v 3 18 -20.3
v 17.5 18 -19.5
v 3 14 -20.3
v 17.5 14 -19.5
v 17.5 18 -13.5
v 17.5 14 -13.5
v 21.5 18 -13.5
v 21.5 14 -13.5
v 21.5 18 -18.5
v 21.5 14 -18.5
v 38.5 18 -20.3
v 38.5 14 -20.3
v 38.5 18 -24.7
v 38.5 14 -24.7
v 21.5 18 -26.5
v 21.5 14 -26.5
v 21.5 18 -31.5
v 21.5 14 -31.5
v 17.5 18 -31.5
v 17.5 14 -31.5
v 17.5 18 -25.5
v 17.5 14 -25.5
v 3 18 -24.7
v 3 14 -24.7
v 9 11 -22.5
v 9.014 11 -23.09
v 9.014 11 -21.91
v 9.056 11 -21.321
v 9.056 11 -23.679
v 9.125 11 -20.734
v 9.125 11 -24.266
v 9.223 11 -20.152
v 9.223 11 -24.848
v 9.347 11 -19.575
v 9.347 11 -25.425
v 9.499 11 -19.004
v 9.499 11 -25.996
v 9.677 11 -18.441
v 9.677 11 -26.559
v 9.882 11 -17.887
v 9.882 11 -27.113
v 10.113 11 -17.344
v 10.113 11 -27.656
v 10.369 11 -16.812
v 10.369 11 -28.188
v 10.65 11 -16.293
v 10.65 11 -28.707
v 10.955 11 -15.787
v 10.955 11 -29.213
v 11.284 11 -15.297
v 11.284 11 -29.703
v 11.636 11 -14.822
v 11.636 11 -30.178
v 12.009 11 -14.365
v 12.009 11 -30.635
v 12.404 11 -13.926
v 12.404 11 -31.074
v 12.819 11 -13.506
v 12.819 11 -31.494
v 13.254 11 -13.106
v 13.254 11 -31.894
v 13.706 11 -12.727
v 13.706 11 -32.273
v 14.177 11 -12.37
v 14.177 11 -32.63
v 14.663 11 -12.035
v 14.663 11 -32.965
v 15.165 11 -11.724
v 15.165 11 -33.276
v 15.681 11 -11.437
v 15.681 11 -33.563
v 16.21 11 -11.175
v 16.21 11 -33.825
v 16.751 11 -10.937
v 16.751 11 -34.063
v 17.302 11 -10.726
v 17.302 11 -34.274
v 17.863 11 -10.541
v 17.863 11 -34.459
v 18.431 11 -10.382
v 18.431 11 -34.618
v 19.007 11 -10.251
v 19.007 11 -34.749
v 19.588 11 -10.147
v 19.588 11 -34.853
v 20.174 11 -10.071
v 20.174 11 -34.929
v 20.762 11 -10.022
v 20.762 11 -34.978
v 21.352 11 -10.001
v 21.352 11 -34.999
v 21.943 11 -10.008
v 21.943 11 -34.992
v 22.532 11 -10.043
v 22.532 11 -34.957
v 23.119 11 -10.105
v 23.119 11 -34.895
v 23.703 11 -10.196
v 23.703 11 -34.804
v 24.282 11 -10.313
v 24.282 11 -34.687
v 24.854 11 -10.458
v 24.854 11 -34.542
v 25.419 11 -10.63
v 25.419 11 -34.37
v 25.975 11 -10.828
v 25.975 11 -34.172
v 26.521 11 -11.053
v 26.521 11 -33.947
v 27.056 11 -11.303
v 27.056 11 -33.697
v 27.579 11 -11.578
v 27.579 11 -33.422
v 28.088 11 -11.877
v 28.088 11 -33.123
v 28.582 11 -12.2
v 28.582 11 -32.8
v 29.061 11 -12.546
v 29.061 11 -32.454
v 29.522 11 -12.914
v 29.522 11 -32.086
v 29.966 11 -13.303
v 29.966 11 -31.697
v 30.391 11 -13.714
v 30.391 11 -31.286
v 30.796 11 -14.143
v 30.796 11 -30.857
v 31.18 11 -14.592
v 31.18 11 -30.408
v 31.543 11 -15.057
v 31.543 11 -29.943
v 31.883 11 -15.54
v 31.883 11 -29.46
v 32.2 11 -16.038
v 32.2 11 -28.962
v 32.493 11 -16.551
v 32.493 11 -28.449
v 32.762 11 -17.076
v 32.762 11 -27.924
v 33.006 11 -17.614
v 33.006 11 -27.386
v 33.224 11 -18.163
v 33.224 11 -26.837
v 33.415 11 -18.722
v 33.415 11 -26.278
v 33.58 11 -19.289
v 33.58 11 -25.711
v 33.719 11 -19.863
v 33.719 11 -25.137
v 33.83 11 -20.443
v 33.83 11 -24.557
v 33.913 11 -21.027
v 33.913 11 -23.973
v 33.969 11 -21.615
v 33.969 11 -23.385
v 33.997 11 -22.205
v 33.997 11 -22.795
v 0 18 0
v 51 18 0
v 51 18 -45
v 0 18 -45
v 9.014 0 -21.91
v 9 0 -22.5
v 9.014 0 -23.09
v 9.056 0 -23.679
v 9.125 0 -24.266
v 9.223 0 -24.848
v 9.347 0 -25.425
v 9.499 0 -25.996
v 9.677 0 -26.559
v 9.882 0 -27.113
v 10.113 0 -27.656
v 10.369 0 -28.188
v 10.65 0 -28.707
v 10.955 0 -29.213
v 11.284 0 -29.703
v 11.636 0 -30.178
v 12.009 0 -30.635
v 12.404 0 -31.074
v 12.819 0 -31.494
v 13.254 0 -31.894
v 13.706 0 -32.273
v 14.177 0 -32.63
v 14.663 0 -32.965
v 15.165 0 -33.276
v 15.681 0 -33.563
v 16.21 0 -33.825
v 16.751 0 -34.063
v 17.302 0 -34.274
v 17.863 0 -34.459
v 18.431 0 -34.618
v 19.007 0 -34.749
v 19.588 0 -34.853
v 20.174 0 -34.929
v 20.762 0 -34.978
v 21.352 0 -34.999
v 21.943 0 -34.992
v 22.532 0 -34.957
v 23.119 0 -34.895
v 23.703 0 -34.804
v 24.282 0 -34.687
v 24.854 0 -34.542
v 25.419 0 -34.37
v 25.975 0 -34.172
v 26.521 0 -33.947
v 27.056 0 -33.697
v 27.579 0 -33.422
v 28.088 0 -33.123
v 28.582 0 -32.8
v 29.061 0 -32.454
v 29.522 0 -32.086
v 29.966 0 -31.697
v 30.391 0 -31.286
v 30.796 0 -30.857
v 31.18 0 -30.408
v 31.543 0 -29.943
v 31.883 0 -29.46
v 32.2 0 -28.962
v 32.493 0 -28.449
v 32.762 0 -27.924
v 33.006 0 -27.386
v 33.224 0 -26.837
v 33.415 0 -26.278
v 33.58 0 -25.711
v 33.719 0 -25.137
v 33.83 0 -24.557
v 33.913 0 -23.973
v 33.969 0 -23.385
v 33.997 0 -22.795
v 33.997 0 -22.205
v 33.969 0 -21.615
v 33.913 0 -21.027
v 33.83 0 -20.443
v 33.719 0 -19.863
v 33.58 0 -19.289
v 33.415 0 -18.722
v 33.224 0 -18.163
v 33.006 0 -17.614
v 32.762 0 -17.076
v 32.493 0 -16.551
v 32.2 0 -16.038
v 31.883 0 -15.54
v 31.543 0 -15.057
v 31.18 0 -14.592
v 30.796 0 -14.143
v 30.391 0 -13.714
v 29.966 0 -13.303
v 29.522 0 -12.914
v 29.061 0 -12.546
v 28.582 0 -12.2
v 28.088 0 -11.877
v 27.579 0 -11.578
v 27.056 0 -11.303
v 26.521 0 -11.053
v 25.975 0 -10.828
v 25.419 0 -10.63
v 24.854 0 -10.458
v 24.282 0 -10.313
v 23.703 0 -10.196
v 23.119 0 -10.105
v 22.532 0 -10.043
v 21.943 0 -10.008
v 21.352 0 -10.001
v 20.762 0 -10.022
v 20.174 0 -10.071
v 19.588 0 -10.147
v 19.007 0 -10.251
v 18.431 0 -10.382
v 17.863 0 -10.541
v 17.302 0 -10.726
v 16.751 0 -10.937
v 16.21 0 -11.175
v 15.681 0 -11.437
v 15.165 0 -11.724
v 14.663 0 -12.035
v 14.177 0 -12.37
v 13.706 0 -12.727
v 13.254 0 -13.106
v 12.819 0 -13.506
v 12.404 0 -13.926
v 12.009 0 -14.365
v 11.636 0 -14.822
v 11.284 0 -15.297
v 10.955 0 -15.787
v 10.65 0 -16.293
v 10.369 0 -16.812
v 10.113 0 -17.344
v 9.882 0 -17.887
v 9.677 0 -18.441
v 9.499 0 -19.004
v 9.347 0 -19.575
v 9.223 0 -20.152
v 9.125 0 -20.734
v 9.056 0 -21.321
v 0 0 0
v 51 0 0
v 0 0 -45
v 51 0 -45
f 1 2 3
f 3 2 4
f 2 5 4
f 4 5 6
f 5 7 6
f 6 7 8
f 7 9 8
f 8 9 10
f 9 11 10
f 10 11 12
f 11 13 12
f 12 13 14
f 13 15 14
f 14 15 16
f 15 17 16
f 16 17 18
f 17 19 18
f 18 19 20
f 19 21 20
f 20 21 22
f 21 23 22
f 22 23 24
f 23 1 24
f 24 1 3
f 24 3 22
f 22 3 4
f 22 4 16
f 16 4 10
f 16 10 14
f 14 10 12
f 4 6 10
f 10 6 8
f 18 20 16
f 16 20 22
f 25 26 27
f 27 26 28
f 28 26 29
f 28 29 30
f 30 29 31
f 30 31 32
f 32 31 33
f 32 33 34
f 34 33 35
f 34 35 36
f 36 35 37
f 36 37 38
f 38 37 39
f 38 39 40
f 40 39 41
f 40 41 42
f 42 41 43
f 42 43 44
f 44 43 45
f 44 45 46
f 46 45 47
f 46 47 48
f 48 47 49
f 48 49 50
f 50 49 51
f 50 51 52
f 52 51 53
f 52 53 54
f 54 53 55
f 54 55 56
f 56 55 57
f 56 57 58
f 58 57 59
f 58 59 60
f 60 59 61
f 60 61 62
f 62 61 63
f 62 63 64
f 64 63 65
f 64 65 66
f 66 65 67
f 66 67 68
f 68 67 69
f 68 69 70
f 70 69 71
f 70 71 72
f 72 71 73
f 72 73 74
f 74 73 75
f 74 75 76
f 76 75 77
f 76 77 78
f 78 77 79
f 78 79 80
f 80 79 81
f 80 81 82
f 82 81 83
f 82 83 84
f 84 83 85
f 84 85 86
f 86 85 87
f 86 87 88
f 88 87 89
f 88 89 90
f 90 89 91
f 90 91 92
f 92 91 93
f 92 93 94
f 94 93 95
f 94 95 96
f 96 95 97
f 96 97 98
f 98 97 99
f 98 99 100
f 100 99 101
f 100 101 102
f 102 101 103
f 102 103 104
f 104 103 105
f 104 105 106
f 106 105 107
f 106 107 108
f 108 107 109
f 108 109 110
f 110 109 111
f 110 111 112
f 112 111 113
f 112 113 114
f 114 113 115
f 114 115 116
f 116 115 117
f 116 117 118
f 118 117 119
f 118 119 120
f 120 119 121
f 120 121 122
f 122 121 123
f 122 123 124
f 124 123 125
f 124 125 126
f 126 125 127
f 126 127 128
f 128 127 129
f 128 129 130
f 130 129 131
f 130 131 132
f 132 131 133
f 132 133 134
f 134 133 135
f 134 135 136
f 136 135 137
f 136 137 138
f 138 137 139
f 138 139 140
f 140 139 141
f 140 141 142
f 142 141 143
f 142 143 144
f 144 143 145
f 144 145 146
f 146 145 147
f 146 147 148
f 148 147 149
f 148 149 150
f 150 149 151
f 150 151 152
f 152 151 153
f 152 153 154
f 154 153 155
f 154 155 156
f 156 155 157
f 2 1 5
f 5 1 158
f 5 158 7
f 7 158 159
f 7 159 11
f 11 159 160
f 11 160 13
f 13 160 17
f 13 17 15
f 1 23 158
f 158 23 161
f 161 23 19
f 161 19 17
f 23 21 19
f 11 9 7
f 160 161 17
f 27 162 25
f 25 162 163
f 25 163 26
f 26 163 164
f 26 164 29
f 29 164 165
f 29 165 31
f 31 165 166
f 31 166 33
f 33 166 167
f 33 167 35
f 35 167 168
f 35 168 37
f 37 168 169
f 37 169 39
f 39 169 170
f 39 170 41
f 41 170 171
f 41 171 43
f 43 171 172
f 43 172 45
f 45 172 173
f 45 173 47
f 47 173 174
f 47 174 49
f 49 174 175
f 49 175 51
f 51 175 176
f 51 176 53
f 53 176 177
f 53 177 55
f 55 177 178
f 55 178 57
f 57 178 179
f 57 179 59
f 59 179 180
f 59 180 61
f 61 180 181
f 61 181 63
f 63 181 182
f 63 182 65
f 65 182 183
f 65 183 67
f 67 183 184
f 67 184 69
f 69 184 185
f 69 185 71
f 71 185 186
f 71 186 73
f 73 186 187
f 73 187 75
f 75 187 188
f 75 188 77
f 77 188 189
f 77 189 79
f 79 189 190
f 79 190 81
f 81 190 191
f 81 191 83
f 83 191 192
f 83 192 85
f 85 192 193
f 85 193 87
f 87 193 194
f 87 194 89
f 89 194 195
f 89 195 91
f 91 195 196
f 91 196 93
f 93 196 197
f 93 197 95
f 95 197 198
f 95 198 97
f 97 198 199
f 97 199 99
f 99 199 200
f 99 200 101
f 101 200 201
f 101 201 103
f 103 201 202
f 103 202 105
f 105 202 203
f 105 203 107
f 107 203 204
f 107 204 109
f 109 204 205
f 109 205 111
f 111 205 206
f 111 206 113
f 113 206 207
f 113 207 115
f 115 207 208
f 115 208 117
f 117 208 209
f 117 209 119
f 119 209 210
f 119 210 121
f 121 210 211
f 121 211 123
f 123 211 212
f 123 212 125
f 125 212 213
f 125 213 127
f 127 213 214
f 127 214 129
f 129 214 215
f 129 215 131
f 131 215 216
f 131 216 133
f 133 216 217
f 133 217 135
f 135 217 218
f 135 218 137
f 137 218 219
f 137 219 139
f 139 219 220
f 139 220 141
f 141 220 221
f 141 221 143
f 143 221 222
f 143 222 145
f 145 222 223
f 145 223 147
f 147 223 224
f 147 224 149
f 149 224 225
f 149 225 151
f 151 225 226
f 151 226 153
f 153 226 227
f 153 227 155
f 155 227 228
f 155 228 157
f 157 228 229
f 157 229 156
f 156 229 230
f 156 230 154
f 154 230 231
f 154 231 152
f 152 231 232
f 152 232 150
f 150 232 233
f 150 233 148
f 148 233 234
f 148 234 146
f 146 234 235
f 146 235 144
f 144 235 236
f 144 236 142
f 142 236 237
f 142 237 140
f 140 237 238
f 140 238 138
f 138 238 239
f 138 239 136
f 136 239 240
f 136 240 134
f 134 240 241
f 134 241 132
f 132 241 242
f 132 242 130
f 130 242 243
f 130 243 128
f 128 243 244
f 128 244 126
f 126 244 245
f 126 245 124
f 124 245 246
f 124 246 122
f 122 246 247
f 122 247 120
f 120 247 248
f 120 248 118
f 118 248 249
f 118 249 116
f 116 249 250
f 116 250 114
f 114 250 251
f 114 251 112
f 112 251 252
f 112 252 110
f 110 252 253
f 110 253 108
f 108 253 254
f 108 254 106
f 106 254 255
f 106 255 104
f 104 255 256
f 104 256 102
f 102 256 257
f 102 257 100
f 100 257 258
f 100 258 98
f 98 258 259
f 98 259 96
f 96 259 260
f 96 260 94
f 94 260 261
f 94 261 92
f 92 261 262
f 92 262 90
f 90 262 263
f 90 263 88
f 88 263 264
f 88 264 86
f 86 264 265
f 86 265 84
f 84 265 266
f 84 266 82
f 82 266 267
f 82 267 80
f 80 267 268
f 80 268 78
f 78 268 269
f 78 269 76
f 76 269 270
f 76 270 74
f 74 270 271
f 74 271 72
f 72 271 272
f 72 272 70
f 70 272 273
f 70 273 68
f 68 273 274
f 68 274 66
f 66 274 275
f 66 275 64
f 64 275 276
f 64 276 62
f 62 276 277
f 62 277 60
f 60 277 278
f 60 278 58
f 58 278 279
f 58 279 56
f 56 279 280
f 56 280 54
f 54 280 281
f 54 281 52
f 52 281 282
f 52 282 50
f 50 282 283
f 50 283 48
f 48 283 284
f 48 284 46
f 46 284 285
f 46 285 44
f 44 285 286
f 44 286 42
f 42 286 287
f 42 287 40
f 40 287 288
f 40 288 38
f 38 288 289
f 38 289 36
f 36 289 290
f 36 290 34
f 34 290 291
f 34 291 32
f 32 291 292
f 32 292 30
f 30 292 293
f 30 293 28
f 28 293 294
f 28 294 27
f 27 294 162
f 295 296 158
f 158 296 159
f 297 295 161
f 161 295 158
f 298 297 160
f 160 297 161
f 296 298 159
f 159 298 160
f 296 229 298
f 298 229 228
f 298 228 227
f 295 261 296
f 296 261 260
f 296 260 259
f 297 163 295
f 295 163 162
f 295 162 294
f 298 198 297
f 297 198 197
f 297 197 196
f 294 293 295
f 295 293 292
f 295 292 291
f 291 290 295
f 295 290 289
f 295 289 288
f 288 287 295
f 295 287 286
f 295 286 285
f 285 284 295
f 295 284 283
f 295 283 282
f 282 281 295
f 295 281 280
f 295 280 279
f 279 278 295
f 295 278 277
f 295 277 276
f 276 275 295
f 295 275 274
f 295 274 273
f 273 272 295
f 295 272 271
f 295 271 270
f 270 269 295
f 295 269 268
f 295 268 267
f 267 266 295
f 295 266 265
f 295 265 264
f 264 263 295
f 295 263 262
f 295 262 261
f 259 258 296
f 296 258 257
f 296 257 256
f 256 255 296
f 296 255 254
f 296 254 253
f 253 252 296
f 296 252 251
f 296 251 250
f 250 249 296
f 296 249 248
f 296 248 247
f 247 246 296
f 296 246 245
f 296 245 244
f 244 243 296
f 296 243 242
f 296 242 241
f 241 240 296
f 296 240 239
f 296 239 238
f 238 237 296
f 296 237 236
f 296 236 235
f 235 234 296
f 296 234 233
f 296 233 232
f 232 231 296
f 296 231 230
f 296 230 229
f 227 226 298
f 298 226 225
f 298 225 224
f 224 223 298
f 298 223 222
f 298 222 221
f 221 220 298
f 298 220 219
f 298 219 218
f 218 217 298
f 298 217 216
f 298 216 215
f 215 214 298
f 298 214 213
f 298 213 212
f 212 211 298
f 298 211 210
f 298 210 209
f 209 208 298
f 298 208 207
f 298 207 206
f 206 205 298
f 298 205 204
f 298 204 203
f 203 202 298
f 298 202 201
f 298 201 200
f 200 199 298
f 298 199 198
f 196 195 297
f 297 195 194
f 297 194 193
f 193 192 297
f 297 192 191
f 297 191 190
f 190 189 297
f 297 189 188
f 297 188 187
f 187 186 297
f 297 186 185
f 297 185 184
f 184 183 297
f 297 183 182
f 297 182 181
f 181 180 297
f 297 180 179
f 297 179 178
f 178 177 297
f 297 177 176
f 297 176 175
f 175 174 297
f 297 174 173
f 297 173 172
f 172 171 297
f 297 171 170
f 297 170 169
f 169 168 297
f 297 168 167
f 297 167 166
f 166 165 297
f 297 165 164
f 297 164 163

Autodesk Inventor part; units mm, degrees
ref_plane "YZ Plane" through (0, 0, 0) normal (1, 0, 0) x (0, 1, 0)
ref_plane "XZ Plane" through (0, 0, 0) normal (0, 1, 0) x (-1, 0, 0)
ref_plane "XY Plane" through (0, 0, 0) normal (0, 0, 1) x (1, 0, 0)
sketch "Sketch1" plane through (0, 0, 0) normal (0, 1, 0) x (-1, 0, 0)
  point P0 (0, 0)
sketch "Sketch2" plane through (0, 0, 0) normal (0, 1, 0) x (-1, 0, 0)
  line L0 (0, 0) -> (-51, 0)
  line L1 (-51, 0) -> (-51, -45)
  line L2 (-51, -45) -> (0, -45)
  line L3 (0, 0) -> (0, -45)
  line L4 (0, -45) -> (0, -22.5)
  circle A0 centre (-21.5, -22.5) radius 12.5
  dimension "d0" = 51
  dimension "d1" = 45
  dimension "d6" = 25
extrude "Extrusion1" add sketch "Sketch2" along normal blind 11
sketch "Sketch3" plane through (0, 11, 0) normal (0, 1, 0) x (1, 0, 0)
  line L0 (0, 45) -> (0, 0) projected
  line L1 (51, 0) -> (51, 45) projected
  line L2 (0, 0) -> (51, 0)
  line L3 (51, 0) -> (51, 45)
  line L4 (51, 45) -> (0, 45)
  line L5 (0, 45) -> (0, 0)
extrude "Extrusion2" add sketch "Sketch3" along normal blind 7
sketch "Sketch4" plane through (0, 18, 0) normal (0, 1, 0) x (1, 0, 0)
  line L0 (0, 45) -> (0, 0) projected
  line L1 (0, 0) -> (51, 0) projected
  line L2 (3, 14) -> (3, 31)
  line L3 (3, 22.5) -> (3, 20.3)
  line L4 (3, 20.3) -> (3, 24.7)
  line L5 (17.5, 19.5) -> (3, 20.3)
  line L6 (3, 24.7) -> (17.5, 25.5)
  line L7 (17.5, 25.5) -> (17.5, 31.5)
  line L8 (17.5, 31.5) -> (21.5, 31.5)
  line L9 (21.5, 31.5) -> (21.5, 26.5)
  line L10 (17.5, 19.5) -> (17.5, 13.5)
  line L11 (17.5, 13.5) -> (21.5, 13.5)
  line L12 (21.5, 13.5) -> (21.5, 18.5)
  line L13 (38.5, 22.5) -> (38.5, 20.3)
  line L14 (38.5, 20.3) -> (38.5, 24.7)
  line L15 (38.5, 24.7) -> (21.5, 26.5)
  line L16 (38.5, 20.3) -> (21.5, 18.5)
  dimension "d13" = 17
  dimension "d14" = 2.2
  dimension "d15" = 4.4
  dimension "d18" = 6
  dimension "d19" = 6
  dimension "d20" = 4
  dimension "d21" = 5
  dimension "d23" = 6
  dimension "d24" = 4
  dimension "d25" = 5
  dimension "d26" = 2.2
  dimension "d27" = 4.4
extrude "Extrusion3" cut sketch "Sketch4" against normal blind 4
properties part number "CameraOverServo"
